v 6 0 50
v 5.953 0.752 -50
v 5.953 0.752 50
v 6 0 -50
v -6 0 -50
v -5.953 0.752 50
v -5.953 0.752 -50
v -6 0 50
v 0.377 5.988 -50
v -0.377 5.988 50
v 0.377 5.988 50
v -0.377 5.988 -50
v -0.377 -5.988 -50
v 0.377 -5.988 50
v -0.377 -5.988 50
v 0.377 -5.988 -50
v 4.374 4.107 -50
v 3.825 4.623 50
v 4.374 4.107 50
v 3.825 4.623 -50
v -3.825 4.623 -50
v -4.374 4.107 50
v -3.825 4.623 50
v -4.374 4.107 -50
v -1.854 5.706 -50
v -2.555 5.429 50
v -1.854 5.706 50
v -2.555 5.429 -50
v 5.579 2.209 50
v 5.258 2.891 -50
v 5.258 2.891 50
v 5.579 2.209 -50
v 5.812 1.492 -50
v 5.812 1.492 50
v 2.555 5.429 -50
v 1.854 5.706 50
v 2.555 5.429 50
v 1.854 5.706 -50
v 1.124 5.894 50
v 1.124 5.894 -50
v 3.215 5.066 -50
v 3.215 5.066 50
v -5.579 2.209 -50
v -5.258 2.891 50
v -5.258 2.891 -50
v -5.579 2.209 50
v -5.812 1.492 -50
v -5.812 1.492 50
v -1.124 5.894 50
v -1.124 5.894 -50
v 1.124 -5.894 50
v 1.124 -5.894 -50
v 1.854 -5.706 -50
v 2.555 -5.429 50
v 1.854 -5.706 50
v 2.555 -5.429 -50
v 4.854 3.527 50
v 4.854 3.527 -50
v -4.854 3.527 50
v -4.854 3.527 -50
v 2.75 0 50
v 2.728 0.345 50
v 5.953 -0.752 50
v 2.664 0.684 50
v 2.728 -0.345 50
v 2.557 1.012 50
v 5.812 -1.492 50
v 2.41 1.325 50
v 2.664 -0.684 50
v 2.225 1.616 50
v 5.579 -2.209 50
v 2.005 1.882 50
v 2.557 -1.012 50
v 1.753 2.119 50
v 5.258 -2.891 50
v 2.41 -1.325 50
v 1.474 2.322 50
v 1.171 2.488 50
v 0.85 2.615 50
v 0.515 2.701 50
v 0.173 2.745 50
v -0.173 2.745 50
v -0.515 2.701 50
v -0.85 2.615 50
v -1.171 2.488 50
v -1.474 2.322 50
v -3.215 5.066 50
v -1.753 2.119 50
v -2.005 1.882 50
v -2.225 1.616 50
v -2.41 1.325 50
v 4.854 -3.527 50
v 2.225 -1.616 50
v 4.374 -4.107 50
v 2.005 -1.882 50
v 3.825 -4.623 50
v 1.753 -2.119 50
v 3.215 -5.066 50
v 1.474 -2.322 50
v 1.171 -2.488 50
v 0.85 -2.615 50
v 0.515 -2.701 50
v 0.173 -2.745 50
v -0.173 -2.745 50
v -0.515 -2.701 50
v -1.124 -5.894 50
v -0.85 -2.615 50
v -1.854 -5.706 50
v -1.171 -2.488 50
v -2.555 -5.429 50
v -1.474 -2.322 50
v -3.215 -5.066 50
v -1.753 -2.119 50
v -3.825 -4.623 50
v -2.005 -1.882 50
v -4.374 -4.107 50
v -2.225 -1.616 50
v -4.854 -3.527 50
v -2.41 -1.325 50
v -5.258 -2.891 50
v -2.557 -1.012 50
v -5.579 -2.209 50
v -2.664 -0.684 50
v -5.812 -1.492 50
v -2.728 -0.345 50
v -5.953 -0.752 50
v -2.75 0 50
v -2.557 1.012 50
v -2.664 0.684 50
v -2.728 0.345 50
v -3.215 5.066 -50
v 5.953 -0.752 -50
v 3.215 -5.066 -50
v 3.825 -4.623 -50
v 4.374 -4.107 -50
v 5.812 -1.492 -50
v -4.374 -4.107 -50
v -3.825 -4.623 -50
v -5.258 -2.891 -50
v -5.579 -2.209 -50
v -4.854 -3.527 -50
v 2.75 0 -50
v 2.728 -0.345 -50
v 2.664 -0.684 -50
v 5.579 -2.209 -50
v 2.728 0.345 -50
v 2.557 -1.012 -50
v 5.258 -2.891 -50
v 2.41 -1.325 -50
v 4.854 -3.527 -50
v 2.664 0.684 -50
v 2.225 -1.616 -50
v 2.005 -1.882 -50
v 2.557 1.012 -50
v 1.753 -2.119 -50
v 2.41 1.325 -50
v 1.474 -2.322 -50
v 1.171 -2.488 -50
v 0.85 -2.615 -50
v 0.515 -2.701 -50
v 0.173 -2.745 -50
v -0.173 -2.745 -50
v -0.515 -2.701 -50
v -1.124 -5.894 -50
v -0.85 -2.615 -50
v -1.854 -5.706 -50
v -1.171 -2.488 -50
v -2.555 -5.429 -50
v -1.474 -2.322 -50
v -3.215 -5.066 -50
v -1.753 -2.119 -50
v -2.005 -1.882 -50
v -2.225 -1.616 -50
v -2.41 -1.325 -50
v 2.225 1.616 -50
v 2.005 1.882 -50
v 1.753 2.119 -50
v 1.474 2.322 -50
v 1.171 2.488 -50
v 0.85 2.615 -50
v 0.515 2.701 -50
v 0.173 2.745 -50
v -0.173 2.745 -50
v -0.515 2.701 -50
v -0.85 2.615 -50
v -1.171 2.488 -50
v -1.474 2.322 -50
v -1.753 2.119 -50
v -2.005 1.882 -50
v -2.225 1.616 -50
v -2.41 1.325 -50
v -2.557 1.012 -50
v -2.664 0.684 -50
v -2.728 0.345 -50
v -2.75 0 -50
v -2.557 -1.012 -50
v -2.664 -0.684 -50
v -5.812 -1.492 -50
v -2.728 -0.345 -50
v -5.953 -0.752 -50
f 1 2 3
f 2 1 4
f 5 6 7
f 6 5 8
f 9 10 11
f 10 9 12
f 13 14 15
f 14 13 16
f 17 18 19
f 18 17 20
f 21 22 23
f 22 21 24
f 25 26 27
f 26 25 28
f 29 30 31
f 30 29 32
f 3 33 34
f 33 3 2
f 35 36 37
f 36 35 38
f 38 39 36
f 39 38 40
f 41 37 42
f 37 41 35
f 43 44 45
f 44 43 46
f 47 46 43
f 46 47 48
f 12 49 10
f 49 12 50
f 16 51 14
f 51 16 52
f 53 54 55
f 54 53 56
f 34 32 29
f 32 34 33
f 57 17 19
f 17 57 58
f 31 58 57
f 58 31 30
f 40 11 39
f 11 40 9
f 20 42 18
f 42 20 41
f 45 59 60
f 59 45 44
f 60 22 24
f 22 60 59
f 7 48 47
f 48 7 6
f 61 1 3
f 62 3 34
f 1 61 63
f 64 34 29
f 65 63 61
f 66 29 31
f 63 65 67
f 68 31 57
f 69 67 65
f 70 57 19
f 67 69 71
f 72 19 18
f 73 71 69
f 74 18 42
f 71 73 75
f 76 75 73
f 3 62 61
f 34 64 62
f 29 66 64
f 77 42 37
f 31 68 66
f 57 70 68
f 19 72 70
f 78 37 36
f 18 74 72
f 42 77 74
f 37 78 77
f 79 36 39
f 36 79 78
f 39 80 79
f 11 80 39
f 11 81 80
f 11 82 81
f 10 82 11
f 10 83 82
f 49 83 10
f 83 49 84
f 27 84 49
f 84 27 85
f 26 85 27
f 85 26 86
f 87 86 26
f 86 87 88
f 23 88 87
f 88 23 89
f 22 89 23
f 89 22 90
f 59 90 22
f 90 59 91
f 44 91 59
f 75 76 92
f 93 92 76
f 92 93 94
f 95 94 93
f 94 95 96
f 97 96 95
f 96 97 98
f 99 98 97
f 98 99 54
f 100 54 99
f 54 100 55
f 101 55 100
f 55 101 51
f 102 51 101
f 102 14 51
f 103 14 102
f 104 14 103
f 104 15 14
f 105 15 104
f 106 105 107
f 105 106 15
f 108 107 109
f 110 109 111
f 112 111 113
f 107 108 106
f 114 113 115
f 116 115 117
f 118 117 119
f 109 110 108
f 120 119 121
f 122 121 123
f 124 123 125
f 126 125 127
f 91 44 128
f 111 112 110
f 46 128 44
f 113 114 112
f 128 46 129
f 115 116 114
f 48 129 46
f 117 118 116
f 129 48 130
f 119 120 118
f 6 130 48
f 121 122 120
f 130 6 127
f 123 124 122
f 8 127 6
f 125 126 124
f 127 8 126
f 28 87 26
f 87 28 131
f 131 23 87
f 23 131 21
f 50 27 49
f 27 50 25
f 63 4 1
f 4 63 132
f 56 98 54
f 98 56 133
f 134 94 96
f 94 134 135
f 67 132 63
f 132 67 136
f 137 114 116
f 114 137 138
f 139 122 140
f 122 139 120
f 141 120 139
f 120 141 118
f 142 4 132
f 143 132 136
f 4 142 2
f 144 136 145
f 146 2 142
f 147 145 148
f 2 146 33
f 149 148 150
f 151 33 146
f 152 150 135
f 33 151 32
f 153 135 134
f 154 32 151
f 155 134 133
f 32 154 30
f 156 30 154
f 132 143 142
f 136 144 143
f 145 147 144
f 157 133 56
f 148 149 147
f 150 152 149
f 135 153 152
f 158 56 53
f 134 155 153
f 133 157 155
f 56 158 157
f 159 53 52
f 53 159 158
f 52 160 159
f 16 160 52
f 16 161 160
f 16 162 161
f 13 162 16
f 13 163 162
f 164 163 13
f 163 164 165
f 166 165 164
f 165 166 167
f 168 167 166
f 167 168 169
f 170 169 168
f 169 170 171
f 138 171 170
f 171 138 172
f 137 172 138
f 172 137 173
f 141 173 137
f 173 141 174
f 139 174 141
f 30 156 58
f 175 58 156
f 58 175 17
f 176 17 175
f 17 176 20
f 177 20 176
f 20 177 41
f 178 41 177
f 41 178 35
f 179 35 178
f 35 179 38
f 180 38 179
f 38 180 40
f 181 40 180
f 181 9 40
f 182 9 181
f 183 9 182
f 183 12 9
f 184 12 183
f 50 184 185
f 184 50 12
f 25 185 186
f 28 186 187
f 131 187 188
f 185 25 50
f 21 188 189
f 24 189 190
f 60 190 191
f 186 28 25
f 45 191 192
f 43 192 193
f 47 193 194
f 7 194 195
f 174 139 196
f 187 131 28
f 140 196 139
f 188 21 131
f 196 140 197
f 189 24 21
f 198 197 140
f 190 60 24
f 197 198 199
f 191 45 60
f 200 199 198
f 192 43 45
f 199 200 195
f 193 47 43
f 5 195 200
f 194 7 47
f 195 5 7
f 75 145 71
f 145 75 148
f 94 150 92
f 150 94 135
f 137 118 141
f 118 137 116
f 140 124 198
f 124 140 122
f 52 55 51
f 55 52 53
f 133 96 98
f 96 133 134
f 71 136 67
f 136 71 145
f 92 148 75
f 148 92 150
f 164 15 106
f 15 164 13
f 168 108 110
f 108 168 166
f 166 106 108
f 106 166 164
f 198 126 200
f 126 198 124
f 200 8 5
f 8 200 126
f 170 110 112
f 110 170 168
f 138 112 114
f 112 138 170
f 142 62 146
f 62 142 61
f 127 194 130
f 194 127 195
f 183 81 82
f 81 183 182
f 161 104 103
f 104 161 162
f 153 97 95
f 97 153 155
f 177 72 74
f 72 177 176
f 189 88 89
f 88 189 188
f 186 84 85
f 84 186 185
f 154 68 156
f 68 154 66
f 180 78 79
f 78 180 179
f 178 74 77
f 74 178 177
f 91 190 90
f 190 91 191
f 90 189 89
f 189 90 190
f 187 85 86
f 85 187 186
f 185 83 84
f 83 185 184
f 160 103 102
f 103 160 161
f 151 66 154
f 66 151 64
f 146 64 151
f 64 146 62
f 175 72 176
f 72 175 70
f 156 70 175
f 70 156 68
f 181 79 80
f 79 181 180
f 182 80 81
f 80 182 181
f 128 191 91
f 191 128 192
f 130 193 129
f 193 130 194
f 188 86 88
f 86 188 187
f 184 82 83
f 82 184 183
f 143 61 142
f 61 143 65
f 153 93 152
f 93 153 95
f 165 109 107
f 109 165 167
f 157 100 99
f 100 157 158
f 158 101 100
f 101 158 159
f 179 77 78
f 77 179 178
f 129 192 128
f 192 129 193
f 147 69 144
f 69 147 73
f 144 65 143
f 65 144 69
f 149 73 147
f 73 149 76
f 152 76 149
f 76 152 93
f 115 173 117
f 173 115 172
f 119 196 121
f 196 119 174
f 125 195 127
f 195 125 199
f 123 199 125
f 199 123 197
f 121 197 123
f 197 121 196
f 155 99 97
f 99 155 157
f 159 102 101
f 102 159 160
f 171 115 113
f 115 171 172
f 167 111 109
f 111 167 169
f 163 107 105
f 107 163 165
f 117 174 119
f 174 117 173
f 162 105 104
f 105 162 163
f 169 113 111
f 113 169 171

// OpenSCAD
$fn = 50;


difference() {
	union() {
		translate(v = [0, 0, -50.0000000000]) {
			cylinder(h = 100, r = 6.0000000000);
		}
	}
	union() {
		translate(v = [0, 0, -100.0000000000]) {
			cylinder(h = 200, r = 2.7500000000);
		}
	}
}
